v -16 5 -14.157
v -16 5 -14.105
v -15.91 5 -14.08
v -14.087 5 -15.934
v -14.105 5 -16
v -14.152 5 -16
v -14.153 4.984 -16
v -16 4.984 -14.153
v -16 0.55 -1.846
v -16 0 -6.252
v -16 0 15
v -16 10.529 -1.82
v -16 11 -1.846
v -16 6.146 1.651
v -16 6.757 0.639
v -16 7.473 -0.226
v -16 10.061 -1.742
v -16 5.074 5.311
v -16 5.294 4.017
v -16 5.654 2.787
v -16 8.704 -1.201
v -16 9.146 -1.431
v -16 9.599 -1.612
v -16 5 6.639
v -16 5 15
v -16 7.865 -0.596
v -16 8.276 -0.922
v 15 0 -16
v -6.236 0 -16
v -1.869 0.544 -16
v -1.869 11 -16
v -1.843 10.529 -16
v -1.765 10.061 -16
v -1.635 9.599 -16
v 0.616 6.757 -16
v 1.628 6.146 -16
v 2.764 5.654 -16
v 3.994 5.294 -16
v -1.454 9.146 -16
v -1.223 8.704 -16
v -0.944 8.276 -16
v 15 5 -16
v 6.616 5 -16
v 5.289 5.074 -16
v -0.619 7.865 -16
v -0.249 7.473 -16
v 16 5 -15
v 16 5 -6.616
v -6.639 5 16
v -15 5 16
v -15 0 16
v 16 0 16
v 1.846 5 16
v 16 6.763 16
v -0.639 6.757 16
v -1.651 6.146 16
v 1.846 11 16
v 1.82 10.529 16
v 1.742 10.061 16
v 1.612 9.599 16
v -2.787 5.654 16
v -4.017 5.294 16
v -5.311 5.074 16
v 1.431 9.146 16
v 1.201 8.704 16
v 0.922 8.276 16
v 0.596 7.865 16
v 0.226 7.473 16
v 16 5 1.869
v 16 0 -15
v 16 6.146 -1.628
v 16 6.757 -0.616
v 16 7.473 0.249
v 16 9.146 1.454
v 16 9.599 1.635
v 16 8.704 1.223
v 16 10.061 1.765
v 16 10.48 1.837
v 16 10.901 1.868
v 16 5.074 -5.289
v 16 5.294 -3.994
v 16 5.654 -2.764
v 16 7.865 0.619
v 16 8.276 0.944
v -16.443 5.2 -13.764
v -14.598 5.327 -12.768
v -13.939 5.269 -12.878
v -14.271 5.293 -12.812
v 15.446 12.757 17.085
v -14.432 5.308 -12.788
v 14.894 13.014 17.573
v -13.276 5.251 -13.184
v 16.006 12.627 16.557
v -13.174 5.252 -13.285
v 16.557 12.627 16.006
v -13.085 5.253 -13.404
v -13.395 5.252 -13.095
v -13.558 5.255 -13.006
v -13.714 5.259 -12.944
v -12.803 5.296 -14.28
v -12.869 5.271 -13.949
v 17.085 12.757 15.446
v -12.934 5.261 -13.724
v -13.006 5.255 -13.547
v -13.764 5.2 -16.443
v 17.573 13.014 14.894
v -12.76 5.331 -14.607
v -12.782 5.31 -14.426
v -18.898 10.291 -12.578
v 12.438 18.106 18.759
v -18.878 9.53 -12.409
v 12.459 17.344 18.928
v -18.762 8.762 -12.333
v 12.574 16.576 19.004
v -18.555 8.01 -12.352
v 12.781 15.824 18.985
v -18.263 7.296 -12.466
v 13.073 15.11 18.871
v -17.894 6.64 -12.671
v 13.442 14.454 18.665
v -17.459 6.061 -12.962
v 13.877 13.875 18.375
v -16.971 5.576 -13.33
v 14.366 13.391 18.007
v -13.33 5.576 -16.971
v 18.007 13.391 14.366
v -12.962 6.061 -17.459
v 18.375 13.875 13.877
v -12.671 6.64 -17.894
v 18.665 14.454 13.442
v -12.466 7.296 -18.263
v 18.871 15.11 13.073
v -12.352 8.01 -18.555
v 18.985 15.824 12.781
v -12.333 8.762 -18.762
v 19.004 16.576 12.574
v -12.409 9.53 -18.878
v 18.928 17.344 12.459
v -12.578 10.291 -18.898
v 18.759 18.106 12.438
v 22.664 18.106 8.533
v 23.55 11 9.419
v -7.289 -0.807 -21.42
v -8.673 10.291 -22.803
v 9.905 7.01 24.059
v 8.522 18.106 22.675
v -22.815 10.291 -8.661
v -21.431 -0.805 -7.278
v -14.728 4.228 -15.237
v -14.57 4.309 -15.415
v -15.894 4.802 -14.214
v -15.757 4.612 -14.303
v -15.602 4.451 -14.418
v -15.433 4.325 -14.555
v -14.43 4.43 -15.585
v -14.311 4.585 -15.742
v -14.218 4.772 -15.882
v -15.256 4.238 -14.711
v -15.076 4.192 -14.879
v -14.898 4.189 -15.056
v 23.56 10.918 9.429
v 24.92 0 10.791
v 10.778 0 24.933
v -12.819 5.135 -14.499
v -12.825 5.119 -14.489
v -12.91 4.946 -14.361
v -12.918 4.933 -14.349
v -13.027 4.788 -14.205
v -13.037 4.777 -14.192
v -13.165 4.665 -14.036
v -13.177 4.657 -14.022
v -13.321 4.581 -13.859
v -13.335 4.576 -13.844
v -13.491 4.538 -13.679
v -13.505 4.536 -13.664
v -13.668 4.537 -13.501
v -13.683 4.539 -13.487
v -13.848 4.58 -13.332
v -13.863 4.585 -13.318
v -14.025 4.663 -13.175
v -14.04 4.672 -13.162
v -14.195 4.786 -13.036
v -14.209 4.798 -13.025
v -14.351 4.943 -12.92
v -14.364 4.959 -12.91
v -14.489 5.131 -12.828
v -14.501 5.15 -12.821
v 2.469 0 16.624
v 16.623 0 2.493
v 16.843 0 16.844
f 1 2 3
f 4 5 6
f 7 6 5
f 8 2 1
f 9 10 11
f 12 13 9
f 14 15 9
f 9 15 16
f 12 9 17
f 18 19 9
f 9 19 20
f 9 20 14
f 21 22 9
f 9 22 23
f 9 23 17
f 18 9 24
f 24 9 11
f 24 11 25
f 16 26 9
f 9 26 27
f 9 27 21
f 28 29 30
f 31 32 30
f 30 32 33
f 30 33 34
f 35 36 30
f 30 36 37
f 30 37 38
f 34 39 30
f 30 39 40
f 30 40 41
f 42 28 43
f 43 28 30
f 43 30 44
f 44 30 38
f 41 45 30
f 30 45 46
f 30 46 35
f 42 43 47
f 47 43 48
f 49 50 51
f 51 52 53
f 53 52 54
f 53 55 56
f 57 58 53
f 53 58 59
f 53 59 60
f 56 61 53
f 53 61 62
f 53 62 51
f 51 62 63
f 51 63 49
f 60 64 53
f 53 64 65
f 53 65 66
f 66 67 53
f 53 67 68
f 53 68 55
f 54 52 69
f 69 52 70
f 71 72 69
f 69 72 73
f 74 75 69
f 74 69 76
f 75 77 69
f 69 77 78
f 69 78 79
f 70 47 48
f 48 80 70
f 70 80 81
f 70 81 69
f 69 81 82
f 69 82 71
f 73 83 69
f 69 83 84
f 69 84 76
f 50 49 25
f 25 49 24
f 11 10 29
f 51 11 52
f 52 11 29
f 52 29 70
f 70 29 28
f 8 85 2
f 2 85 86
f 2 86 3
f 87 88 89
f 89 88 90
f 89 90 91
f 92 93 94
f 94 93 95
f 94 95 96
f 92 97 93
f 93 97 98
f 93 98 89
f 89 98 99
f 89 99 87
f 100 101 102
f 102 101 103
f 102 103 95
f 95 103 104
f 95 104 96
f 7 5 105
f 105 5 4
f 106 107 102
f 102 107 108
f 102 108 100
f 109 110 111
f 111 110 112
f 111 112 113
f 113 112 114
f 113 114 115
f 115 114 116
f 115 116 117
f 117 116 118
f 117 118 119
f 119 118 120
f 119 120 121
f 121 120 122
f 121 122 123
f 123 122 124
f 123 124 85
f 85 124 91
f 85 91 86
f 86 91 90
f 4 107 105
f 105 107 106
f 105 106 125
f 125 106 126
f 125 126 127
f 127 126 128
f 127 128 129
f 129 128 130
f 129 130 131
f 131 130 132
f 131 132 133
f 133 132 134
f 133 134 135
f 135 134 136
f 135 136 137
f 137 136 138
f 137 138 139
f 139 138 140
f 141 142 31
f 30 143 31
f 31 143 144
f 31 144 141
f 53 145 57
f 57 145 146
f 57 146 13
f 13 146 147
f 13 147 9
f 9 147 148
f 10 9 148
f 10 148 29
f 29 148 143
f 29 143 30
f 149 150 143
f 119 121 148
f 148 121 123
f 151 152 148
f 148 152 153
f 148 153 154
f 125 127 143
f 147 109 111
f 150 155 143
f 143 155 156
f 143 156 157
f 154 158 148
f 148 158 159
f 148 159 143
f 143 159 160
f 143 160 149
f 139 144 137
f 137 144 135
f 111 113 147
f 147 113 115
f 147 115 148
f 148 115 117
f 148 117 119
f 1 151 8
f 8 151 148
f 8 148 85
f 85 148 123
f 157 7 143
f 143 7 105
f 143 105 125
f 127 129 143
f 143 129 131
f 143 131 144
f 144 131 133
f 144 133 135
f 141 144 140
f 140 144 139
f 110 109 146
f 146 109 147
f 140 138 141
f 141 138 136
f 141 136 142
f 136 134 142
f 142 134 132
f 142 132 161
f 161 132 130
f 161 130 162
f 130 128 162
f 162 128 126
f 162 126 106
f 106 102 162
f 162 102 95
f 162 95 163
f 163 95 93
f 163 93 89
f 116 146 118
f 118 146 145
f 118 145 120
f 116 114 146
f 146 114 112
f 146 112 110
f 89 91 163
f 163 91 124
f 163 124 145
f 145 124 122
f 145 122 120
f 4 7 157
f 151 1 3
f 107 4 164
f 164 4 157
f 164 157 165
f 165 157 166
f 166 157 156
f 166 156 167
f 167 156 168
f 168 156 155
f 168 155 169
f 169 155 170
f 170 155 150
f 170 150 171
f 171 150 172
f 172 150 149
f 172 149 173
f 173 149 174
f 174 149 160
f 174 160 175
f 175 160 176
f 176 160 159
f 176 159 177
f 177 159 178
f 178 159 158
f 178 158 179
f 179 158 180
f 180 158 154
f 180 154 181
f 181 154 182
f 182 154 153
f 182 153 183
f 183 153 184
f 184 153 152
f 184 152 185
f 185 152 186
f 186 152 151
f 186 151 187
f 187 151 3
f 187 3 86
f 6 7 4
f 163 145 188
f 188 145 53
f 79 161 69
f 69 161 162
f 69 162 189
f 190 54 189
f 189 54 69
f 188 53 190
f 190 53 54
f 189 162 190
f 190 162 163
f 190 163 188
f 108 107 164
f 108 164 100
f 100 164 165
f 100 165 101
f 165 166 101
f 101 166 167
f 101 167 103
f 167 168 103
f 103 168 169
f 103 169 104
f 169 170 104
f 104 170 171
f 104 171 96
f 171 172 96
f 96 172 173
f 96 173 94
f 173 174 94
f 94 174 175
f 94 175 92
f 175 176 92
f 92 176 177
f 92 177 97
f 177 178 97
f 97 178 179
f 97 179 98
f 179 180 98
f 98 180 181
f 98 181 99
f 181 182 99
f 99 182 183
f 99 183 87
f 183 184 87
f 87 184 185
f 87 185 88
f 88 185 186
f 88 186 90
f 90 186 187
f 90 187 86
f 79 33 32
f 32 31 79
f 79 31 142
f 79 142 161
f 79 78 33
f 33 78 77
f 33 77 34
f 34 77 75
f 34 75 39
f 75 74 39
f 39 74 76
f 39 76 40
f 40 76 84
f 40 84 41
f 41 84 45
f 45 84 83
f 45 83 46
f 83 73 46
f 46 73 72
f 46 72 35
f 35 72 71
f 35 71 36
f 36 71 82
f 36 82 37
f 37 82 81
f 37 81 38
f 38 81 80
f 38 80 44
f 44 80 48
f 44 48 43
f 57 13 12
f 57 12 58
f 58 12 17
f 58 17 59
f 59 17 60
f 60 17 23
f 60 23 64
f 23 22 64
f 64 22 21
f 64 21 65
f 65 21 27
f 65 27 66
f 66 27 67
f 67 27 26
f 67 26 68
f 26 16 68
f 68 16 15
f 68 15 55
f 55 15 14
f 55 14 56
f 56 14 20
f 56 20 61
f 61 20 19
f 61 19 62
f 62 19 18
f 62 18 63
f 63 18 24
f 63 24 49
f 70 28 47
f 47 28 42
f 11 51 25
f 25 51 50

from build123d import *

# Parameters (mm, degrees)
SKETCH1_W                = 32
SKETCH1_H                = 32
BOSS_EXTRUDE1_DEPTH      = 5
BOSS_EXTRUDE2_DEPTH      = 24
BOSS_EXTRUDE2_DEPTH_BACK = 21
SKETCH3_W                = 21.632810856
SKETCH3_H                = 9.374415515
CUT_EXTRUDE1_DEPTH       = 26
CUT_EXTRUDE3_DEPTH       = 3
BOSS_EXTRUDE3_REACH      = 38.453
BOSS_EXTRUDE4_REACH      = 39.779
CHAMFER2_SIZE            = 1
FILLET3_R                = 6
CHAMFER3_SIZE            = 1


with BuildPart() as part:
    # Sketch1 → Boss-Extrude1 (new body)
    with BuildSketch(Plane(origin=(0, 0, 0), x_dir=(1, 0, 0), z_dir=(0, 1, 0))):
        Rectangle(SKETCH1_W, SKETCH1_H)
    extrude(amount=BOSS_EXTRUDE1_DEPTH)

    # Sketch2 → Boss-Extrude2 (add, two sides: drawn at the far end of the back side and taken through both)
    with BuildSketch(Plane(origin=(0.604611907, 0.150768448, 0.604611907), x_dir=(0.7071067811865476, 0, -0.7071067811865476), z_dir=(0.6963642403200193, 0.17364817766692736, 0.6963642403200193)).offset(-BOSS_EXTRUDE2_DEPTH_BACK)):
        with BuildLine():
            Line((-4.469496616, 14), (-10.008100473, 14))
            Line((-10.008100473, 14), (-10.008100473, 2.732717447))
            Line((-10.008100473, 2.732717447), (9.991899527, 2.729904182))
            Line((9.991899527, 2.729904182), (9.991899527, 14))
            Line((9.991899527, 14), (4.469496616, 14))
            ThreePointArc((4.469496616, 14), (0, 8.42), (-4.469496616, 14))
        make_face()
    extrude(amount=BOSS_EXTRUDE2_DEPTH + BOSS_EXTRUDE2_DEPTH_BACK)

    # Sketch3 → Cut-Extrude1 (cut)
    with BuildSketch(Plane(origin=(-14.01903714, -3.495843283, -14.01903714), x_dir=(-0.6756735354111862, -0.16848866057223583, 0.7176885430348756), z_dir=(-0.6963642403200194, -0.17364817766692736, -0.6963642403200193))):
        with Locations((-1.423401453, 7.396880279)):
            Rectangle(SKETCH3_W, SKETCH3_H)
    extrude(amount=CUT_EXTRUDE1_DEPTH, mode=Mode.SUBTRACT)

    # Sketch4 → Cut-Extrude3 (cut)
    with BuildSketch(Plane(origin=(-14.01903714, -3.495843283, -14.01903714), x_dir=(-0.6756735354111862, -0.16848866057223583, 0.7176885430348756), z_dir=(-0.6963642403200194, -0.17364817766692736, -0.6963642403200193))):
        with BuildLine():
            Line((-2.760198528, 8.259804018), (-2.791216986, 8.402799894))
            Line((-2.791216986, 8.402799894), (-0.222019538, 8.960106488))
            Line((-0.222019538, 8.960106488), (-0.191719193, 8.722714198))
            ThreePointArc((-0.191719193, 8.722714198), (-1.330630481, 7.684897625), (-2.760198528, 8.259804018))
        make_face()
    extrude(amount=-CUT_EXTRUDE3_DEPTH, mode=Mode.SUBTRACT)

    # Boss-Extrude3: up to this face of the body (flat: up to its plane)
    boss_extrude3_end = Plane(part.part.faces().sort_by_distance((12.948102595, 6.004070548, 12.962810253))[0])
    # Sketch5 → Boss-Extrude3 (add, up to the picked face)
    with BuildSketch(Plane(origin=(0, 5, 0), x_dir=(1, 0, 0), z_dir=(0, 1, 0)), mode=Mode.PRIVATE) as boss_extrude3_sk1:
        Polygon((16, -1.869320176), (1.846408577, -16), (16, -16), align=None)
    boss_extrude3_tool1 = split(extrude(boss_extrude3_sk1.sketch, amount=BOSS_EXTRUDE3_REACH, mode=Mode.PRIVATE), bisect_by=boss_extrude3_end, keep=Keep.BOTH, mode=Mode.PRIVATE)
    add(boss_extrude3_tool1.solids().sort_by(Axis((11.282136, 5, 11.289773), (0, 1, 0)))[0])

    # Boss-Extrude4: up to this plane
    boss_extrude4_end = Plane(origin=(0, 0, 0), z_dir=(0, 1, 0))
    # Sketch6 → Boss-Extrude4 (add, up to the surface)
    with BuildSketch(Plane(origin=(-0.335099844, 2.689814891, -0.335643177), x_dir=(0.992445248624536, 0.12174417303820455, -0.015191603398808283), z_dir=(0.12268833882070036, -0.9848077432694324, 0.12288726668774345)), mode=Mode.PRIVATE) as boss_extrude4_sk1:
        Polygon((2.19811463, 16.495983278), (10.318063839, 24.741397108), (24.568201142, 10.708094048), (16.459446872, 2.474048136), (16.459446872, 16.714315992), align=None)
    boss_extrude4_tool1 = split(extrude(boss_extrude4_sk1.sketch, amount=BOSS_EXTRUDE4_REACH, mode=Mode.PRIVATE), bisect_by=boss_extrude4_end, keep=Keep.BOTH, mode=Mode.PRIVATE)
    add(boss_extrude4_tool1.solids().sort_by_distance((6.098904, 6.004719, 19.80612))[0])

    # Chamfer2
    # the kernel refuses this chamfer: 1 mm, written as the material it adds along each edge
    with BuildSketch(Plane(origin=(-13.061628157, 6.132633274, -13.069351365), x_dir=(-0.29592354594657705, 0.9534387650849755, 0.05817023455033625), z_dir=(0.6538395061159328, 0.2465782464577767, -0.7153272458224147))) as chamfer2_piece_1_section:
        Polygon((1.448815372, -CHAMFER2_SIZE), (1.448815372 - CHAMFER2_SIZE, 0), (1.448815372, 0), align=None)
    chamfer2_piece_1 = revolve(axis=Axis((-13.061628157, 6.132633274, -13.069351365), (0.6963642403200193, 0.17364817766692733, 0.6963642403200193)), revolution_arc=331.166542544, mode=Mode.PRIVATE)
    chamfer2_piece_1 = chamfer2_piece_1 - Plane(origin=(-13.810185227, 9.756782822, -13.810185227), x_dir=(0.6632365855153953, 0.21502352685856047, -0.7168557138861248), z_dir=(-0.6963642403200193, -0.1736481776669273, -0.6963642403200193)) * Cylinder(4.58, 6, mode=Mode.PRIVATE)
    add(chamfer2_piece_1)

    # Fillet3
    # the kernel refuses this fillet: 6 mm, written as the material it adds along each edge
    with BuildSketch(Plane(origin=(26.606601718, 5, 12.475921893), x_dir=(0, 1, 0), z_dir=(-0.7071067811865475, 0, -0.7071067811865476))) as fillet3_piece_1_section:
        with BuildLine():
            CenterArc((FILLET3_R, FILLET3_R), FILLET3_R, 180, 90)
            Line((0, FILLET3_R), (0, 0))
            Line((0, 0), (FILLET3_R, 0))
        make_face()
    fillet3_piece_1 = extrude(amount=55.271034943, mode=Mode.PRIVATE)
    fillet3_piece_1 = split(fillet3_piece_1, bisect_by=Plane(origin=(7.920941569, 6.446020655, -16), z_dir=(0, 0, 1)), keep=Keep.TOP, mode=Mode.PRIVATE)
    fillet3_piece_1 = split(fillet3_piece_1, bisect_by=Plane(origin=(16, 6.446020655, -7.920941569), z_dir=(-1, 0, 0)), keep=Keep.TOP, mode=Mode.PRIVATE)
    add(fillet3_piece_1)
    with BuildSketch(Plane(origin=(-26.606601718, 5, -12.453010295), x_dir=(0, 1, 0), z_dir=(0.7071067811865475, 0, 0.7071067811865476))) as fillet3_piece_2_section:
        with BuildLine():
            CenterArc((FILLET3_R, FILLET3_R), FILLET3_R, 180, 90)
            Line((0, FILLET3_R), (0, 0))
            Line((0, 0), (FILLET3_R, 0))
        make_face()
    fillet3_piece_2 = extrude(amount=55.238633049, mode=Mode.PRIVATE)
    fillet3_piece_2 = split(fillet3_piece_2, bisect_by=Plane(origin=(-16, 6.446146756, 7.932246434), z_dir=(1, 0, 0)), keep=Keep.TOP, mode=Mode.PRIVATE)
    fillet3_piece_2 = split(fillet3_piece_2, bisect_by=Plane(origin=(-7.932246434, 6.446146756, 16), z_dir=(0, 0, -1)), keep=Keep.TOP, mode=Mode.PRIVATE)
    add(fillet3_piece_2)

    # Chamfer3
    chamfer3_edges = [part.edges().sort_by_distance(p)[0] for p in [
        (16, 2.5, -16),
        (-16, 2.5, 16),
    ]]
    chamfer(chamfer3_edges, length=CHAMFER3_SIZE)


solid = part.part
